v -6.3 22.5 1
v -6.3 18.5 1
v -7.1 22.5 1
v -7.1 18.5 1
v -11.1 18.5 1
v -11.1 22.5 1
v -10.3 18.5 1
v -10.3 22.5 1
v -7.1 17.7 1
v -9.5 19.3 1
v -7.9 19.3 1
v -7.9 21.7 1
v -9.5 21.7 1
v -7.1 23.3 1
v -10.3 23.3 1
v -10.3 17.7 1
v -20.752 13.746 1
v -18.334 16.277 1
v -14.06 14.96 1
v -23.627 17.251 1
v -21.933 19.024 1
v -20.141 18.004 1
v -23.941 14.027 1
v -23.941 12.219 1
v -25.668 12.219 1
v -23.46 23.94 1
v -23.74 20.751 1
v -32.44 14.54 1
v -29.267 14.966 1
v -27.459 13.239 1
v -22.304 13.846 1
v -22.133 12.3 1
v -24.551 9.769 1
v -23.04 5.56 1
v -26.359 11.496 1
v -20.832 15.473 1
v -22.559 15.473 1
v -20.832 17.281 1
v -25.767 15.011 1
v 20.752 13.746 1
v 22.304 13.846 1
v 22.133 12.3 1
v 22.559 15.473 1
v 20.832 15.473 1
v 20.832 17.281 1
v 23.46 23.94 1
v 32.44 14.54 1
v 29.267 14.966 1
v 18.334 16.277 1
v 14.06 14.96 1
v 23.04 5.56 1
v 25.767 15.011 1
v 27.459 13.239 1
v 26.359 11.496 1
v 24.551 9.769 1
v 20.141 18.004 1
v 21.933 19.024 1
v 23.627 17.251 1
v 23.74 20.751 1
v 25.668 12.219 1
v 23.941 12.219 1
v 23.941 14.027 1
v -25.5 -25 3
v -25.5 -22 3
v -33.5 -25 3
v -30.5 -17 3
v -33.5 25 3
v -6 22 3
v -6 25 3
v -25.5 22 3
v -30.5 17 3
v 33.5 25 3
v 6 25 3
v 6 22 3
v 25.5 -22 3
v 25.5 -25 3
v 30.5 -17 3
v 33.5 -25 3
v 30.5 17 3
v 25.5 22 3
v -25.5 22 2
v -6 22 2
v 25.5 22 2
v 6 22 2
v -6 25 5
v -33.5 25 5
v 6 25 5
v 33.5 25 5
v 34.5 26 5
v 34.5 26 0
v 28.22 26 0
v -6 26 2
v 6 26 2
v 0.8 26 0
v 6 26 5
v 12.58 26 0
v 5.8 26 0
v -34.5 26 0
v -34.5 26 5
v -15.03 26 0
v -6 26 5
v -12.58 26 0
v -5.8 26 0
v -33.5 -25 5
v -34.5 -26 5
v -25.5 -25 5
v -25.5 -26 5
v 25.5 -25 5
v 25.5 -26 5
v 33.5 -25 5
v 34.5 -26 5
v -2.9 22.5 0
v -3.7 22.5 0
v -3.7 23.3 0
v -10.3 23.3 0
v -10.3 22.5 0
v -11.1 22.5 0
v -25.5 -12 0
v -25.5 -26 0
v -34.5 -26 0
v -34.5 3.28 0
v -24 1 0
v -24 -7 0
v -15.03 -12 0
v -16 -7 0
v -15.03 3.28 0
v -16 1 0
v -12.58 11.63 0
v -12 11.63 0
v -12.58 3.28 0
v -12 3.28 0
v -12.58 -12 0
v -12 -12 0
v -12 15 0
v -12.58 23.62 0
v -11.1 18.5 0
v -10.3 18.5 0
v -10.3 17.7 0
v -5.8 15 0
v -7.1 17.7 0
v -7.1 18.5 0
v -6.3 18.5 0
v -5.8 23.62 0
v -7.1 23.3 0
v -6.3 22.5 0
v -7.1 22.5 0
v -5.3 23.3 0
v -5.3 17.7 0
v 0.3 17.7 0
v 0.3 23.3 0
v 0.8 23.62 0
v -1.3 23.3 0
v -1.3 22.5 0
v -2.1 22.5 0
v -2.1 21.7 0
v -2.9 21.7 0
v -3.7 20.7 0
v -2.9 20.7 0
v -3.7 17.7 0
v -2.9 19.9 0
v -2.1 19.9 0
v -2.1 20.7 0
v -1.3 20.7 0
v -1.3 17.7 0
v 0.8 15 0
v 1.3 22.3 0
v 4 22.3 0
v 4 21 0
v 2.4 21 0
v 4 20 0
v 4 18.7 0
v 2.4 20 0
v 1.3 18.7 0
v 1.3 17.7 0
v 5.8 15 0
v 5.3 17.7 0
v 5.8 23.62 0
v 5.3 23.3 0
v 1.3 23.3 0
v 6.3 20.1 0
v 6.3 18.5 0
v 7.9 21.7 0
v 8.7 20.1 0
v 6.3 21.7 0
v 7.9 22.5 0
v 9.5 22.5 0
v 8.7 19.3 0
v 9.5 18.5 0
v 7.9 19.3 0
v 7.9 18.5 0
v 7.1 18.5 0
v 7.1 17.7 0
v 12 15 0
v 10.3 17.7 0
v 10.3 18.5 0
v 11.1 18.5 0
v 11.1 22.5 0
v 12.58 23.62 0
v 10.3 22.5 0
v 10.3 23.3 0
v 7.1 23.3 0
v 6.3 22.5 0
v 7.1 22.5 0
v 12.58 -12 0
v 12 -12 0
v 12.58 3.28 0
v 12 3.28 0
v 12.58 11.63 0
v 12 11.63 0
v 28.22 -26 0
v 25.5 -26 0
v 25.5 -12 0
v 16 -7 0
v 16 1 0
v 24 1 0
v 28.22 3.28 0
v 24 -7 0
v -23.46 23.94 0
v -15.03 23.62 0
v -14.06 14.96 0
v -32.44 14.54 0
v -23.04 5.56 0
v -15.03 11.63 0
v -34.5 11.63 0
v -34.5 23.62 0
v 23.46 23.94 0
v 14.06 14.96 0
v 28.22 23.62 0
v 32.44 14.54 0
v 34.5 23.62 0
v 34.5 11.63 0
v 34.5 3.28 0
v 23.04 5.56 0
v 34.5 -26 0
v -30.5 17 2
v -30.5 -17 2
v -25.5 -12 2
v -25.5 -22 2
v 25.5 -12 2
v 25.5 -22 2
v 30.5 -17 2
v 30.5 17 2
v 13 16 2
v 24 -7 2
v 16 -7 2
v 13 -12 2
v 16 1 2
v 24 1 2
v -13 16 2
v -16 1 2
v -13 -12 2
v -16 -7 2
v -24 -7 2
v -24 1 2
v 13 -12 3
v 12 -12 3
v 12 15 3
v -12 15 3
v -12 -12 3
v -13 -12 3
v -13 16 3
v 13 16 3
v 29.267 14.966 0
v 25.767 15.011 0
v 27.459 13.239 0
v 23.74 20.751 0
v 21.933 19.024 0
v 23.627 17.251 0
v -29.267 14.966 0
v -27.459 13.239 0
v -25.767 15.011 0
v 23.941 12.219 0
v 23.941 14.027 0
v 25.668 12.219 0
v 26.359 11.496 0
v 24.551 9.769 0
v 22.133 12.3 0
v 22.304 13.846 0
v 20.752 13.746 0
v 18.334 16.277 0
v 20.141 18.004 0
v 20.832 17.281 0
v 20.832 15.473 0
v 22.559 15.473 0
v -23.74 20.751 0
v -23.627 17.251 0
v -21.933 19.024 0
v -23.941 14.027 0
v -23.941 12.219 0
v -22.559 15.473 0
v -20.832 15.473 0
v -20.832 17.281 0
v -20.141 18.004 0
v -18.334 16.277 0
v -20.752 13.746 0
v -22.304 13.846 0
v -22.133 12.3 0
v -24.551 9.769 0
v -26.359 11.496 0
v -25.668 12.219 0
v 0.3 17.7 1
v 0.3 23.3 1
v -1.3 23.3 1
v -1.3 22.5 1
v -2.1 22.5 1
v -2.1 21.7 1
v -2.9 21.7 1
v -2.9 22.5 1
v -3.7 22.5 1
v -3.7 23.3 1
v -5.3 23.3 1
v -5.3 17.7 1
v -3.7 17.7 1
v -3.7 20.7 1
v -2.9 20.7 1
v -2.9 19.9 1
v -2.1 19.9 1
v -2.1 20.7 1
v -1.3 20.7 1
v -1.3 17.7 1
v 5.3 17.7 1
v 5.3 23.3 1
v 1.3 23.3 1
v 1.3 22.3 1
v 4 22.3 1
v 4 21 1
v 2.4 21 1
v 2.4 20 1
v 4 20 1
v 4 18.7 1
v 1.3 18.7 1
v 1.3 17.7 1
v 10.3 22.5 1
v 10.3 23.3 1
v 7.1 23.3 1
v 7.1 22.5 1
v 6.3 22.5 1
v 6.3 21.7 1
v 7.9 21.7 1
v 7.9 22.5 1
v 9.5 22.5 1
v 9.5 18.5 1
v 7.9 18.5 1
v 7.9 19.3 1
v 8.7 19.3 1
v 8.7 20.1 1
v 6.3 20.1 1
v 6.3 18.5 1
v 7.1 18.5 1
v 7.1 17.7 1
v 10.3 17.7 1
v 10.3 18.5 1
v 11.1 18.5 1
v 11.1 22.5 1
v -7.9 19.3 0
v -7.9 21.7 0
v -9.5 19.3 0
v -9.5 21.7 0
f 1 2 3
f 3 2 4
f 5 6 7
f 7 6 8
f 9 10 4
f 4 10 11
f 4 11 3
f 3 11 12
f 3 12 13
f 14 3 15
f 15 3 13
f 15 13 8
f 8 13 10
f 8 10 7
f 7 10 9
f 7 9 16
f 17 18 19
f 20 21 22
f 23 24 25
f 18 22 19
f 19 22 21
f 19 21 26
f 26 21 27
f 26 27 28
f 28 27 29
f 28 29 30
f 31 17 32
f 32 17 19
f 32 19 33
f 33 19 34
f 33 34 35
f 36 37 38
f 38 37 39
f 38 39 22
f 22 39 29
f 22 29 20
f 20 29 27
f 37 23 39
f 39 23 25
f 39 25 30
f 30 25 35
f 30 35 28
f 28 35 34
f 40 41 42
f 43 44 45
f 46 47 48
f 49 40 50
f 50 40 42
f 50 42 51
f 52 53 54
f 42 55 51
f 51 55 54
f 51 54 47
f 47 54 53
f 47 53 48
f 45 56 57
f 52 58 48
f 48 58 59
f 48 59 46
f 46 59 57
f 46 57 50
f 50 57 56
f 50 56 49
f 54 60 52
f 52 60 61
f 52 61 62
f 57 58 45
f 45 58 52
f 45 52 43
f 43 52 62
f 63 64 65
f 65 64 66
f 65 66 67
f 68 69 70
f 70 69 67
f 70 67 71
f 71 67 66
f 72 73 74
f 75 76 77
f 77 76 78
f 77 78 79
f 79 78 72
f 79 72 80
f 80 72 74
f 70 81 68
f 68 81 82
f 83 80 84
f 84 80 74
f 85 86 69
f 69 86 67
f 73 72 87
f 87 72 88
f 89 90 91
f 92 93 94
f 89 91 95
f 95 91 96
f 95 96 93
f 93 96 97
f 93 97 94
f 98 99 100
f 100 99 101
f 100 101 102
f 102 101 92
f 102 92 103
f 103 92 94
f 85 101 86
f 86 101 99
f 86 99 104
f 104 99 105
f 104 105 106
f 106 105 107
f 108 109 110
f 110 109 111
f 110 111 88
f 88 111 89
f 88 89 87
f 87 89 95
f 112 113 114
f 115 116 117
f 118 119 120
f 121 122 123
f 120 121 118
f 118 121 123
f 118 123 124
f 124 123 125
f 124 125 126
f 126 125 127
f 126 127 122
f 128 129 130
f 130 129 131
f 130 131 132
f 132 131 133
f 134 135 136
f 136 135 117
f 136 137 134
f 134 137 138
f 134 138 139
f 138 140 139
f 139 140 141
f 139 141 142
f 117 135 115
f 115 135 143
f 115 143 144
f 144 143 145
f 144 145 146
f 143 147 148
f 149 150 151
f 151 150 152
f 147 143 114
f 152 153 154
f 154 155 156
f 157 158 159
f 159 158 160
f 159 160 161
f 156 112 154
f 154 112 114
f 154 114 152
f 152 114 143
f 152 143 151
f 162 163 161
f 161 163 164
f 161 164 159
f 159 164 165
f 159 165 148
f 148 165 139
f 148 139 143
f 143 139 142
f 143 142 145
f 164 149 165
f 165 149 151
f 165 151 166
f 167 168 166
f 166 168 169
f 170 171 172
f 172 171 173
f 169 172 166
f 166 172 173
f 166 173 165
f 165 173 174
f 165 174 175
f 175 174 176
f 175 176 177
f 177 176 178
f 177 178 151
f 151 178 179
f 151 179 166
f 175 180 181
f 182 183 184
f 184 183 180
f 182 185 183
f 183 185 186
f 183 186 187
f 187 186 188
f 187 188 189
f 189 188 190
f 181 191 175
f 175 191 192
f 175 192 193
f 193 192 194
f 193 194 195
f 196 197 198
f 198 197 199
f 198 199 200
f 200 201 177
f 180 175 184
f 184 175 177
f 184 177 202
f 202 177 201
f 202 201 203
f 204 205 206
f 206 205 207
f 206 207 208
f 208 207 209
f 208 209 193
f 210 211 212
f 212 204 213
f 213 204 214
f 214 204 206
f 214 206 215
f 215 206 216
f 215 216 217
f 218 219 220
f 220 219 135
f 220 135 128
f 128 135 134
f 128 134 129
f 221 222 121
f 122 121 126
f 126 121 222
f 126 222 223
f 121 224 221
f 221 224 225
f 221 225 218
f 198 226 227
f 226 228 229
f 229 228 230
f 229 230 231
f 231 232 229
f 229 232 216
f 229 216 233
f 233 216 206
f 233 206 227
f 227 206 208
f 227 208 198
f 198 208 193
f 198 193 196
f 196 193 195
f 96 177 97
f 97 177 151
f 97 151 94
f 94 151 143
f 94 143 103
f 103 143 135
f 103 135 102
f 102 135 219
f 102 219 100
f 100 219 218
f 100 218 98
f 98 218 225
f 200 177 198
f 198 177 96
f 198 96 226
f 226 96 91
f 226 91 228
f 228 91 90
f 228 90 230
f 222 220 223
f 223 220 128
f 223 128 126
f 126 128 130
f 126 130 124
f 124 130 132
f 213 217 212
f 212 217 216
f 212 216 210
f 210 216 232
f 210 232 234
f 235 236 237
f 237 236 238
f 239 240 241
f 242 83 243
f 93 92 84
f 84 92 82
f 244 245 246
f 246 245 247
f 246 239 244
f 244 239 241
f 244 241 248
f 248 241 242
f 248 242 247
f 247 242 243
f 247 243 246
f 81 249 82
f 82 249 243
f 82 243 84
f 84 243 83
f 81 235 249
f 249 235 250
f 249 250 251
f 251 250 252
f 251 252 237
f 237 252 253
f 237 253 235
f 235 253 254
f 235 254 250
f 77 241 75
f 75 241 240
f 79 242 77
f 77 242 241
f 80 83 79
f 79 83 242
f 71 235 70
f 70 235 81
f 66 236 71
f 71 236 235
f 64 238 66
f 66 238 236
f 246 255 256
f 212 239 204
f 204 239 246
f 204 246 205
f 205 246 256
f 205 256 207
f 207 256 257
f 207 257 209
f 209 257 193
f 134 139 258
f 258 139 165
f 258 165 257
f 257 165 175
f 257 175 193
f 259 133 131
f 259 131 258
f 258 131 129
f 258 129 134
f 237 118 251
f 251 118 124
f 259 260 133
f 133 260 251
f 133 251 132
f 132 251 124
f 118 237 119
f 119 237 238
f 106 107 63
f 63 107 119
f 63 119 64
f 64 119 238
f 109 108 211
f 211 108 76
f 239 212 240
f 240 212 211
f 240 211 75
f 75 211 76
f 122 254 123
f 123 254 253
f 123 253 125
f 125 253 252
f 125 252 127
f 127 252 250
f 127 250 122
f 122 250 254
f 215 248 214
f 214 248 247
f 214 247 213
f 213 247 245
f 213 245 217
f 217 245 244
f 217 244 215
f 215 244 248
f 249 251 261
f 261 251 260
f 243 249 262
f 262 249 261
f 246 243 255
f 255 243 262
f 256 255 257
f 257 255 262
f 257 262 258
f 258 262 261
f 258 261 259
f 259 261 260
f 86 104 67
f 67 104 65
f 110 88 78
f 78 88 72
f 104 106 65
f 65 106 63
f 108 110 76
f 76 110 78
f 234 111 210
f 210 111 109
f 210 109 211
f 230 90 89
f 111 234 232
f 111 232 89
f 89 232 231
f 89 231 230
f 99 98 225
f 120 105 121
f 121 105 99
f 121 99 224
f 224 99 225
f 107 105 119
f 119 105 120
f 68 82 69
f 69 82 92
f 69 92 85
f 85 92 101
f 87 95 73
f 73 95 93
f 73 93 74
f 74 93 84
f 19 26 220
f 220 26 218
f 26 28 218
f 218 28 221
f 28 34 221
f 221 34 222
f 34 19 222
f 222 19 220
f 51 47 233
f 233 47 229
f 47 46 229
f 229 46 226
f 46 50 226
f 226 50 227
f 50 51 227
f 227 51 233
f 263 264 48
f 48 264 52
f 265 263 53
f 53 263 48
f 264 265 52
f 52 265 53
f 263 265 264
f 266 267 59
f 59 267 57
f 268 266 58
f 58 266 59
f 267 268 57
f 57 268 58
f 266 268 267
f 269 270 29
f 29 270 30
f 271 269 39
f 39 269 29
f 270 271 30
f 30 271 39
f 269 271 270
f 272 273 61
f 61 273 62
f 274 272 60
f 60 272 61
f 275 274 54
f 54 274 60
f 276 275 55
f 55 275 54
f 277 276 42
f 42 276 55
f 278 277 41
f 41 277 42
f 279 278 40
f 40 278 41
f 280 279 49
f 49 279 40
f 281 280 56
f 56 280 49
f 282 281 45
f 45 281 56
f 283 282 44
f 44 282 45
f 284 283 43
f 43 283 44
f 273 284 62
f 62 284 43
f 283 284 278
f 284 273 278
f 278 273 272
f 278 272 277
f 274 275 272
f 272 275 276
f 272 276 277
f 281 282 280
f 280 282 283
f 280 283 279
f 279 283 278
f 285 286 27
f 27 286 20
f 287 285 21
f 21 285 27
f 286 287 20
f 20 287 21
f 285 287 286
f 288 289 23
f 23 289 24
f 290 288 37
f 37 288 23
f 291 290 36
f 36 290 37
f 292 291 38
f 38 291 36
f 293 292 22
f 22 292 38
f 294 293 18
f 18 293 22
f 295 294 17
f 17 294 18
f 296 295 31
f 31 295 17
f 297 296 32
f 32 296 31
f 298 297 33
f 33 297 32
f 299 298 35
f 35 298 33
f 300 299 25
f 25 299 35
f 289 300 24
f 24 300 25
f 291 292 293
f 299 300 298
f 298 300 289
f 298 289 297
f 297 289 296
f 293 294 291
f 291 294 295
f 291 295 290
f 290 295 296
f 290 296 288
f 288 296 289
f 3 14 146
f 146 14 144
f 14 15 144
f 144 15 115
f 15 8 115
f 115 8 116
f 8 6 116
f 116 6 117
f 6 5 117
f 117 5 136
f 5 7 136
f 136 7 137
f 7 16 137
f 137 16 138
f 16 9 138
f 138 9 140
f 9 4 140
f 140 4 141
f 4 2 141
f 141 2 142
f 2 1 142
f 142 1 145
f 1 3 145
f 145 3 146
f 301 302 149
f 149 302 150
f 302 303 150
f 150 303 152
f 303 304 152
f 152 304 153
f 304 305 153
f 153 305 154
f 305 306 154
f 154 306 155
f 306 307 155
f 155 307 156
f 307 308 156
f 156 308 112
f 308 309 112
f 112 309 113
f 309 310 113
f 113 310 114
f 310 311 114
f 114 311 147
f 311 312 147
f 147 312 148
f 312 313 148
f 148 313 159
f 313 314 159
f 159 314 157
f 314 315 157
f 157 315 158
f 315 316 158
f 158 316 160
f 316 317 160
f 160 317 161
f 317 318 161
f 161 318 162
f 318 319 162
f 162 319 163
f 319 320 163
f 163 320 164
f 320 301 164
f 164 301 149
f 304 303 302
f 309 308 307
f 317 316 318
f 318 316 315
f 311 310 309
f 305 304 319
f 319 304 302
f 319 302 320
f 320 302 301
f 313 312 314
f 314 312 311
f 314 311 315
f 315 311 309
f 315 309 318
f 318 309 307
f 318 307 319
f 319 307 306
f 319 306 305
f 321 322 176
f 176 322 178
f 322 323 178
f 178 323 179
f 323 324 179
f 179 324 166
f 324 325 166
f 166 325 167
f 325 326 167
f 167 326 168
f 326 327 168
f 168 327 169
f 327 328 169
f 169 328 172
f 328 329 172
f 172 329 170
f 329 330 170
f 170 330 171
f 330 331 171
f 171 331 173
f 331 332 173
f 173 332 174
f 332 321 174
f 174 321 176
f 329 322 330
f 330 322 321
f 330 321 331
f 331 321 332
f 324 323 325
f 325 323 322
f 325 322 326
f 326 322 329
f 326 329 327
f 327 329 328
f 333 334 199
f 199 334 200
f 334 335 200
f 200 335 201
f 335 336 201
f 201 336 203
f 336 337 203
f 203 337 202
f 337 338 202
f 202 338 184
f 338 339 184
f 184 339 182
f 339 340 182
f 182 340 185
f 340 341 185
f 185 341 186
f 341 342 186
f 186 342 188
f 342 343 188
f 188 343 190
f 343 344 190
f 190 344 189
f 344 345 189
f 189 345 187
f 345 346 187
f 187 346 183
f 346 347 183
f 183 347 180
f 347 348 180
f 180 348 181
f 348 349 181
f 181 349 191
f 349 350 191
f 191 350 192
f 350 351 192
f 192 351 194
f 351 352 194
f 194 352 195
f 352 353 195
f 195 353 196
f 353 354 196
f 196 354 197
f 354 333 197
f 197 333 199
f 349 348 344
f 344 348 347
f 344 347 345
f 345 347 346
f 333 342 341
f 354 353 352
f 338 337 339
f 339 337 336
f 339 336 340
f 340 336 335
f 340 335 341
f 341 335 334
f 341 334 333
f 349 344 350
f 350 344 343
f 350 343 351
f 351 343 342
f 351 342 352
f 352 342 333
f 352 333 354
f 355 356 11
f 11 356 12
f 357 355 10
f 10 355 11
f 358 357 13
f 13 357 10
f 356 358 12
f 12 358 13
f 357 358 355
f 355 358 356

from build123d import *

# Parameters (mm, degrees)
SKICA1_W                    = 67
SKICA1_H                    = 50
P_IDAT_VYSUNUT_M1_DEPTH     = 3
ODEBRAT_VYSUNUT_M1_DEPTH    = 1
SKICA3_W                    = 8
SKICA3_H                    = 8
ODEBRAT_VYSUNUT_M2_DEPTH    = 4
VYSUNOUT_TENKOST_NN_1_DEPTH = 1
VYSUNOUT_TENKOST_NN_2_DEPTH = 5
SKICA6_W                    = 12
SKICA6_H                    = 4
ODEBRAT_VYSUNUT_M3_DEPTH    = 4
ODEBRAT_VYSUNUT_M5_DEPTH    = 1
P_IDAT_START                = -1
P_IDAT_VYSUNUT_M3_DEPTH     = 1
ODEBRAT_VYSUNUT_M6_DEPTH    = 1
SKICA10_W                   = 1.6
SKICA10_H                   = 2.4
P_IDAT_VYSUNUT_M4_DEPTH     = 1


with BuildPart() as part:
    # Skica1 → Přidat vysunutím1 (new body)
    with BuildSketch(Plane.XY):
        Rectangle(SKICA1_W, SKICA1_H)
    extrude(amount=P_IDAT_VYSUNUT_M1_DEPTH)

    # Skica2 → Odebrat vysunutím1 (cut)
    with BuildSketch(Plane.XY.offset(3)):
        Polygon((-25.5, -22), (-30.5, -17), (-30.5, 17), (-25.5, 22), (25.5, 22), (30.5, 17), (30.5, -17), (25.5, -22), align=None)
    extrude(amount=-ODEBRAT_VYSUNUT_M1_DEPTH, mode=Mode.SUBTRACT)

    # Skica3 → Odebrat vysunutím2 (cut, through all)
    with BuildSketch(Plane(origin=(0, 0, 0), x_dir=(-1, 0, 0), z_dir=(0, 0, -1))):
        with Locations((20, -3)):
            Rectangle(SKICA3_W, SKICA3_H)
        with Locations((-20, -3)):
            Rectangle(SKICA3_W, SKICA3_H)
        Polygon((25.5, -25), (-25.5, -25), (-25.5, -12), (-12, -12), (-12, 15), (12, 15), (12, -12), (25.5, -12), align=None)
    extrude(amount=-ODEBRAT_VYSUNUT_M2_DEPTH, mode=Mode.SUBTRACT)

    # Skica4 → Vysunout tenkostěnný1 (add)
    with BuildSketch(Plane.XY.offset(2)):
        Polygon((-12, -12), (-12, 15), (12, 15), (12, -12), (13, -12), (13, 16), (-13, 16), (-13, -12), align=None)
    extrude(amount=VYSUNOUT_TENKOST_NN_1_DEPTH)

    # Skica5 → Vysunout tenkostěnný2 (add)
    with BuildSketch(Plane(origin=(0, 0, 0), x_dir=(-1, 0, 0), z_dir=(0, 0, -1))):
        Polygon((-25.5, -25), (-33.5, -25), (-33.5, 25), (33.5, 25), (33.5, -25), (25.5, -25), (25.5, -26), (34.5, -26), (34.5, 26), (-34.5, 26), (-34.5, -26), (-25.5, -26), align=None)
    extrude(amount=-VYSUNOUT_TENKOST_NN_2_DEPTH)

    # Skica6 → Odebrat vysunutím3 (cut, through all)
    with BuildSketch(Plane.XY.offset(2)):
        with Locations((0, 24)):
            Rectangle(SKICA6_W, SKICA6_H)
    extrude(amount=ODEBRAT_VYSUNUT_M3_DEPTH, mode=Mode.SUBTRACT)

    # Skica7 → Odebrat vysunutím5 (cut)
    with BuildSketch(Plane(origin=(0, 0, 0), x_dir=(-1, 0, 0), z_dir=(0, 0, -1))):
        Polygon((-32.44, 14.540476732), (-23.459523268, 23.94), (-14.06, 14.959523268), (-23.040476732, 5.56), align=None)
        Polygon((14.06, 14.959523268), (23.040476732, 5.56), (32.44, 14.540476732), (23.459523268, 23.94), align=None)
    extrude(amount=-ODEBRAT_VYSUNUT_M5_DEPTH, mode=Mode.SUBTRACT)

    # Skica8 → Přidat vysunutím3 (add)
    with BuildSketch(Plane(origin=(0, 0, 0), x_dir=(-1, 0, 0), z_dir=(0, 0, -1)).offset(P_IDAT_START)):
        Polygon((-29.266904741, 14.966465555), (-27.459304113, 13.239450799), (-25.766904741, 15.010820822), align=None)
        Polygon((-23.626799477, 17.250787567), (-21.932856893, 19.023772811), (-23.740457522, 20.750787567), align=None)
        Polygon((-24.551025932, 9.769304113), (-26.358626561, 11.496318869), (-25.667820659, 12.21935912), (-23.940805902, 12.21935912), (-23.940805902, 14.026959749), (-22.559194098, 15.473040251), (-20.832179341, 15.473040251), (-20.832179341, 17.28064088), (-20.141373439, 18.003681131), (-18.333772811, 16.276666375), (-20.751593469, 13.746025495), (-22.304085189, 13.84625566), (-22.133205274, 12.299944993), align=None)
        Polygon((27.459304113, 13.239450799), (25.766904741, 15.010820822), (29.266904741, 14.966465555), align=None)
        Polygon((23.626799477, 17.250787567), (21.932856893, 19.023772811), (23.740457522, 20.750787567), align=None)
        Polygon((23.940805902, 14.026959749), (22.559194098, 15.473040251), (20.832179341, 15.473040251), (20.832179341, 17.28064088), (20.141373439, 18.003681131), (18.333772811, 16.276666375), (20.751593469, 13.746025495), (22.304085189, 13.84625566), (22.133205274, 12.299944993), (24.551025932, 9.769304113), (26.358626561, 11.496318869), (25.667820659, 12.21935912), (23.940805902, 12.21935912), align=None)
    extrude(amount=P_IDAT_VYSUNUT_M3_DEPTH)

    # Skica9 → Odebrat vysunutím6 (cut)
    with BuildSketch(Plane(origin=(0, 0, 0), x_dir=(-1, 0, 0), z_dir=(0, 0, -1))):
        Polygon((-10.3, 23.3), (-7.1, 23.3), (-7.1, 22.5), (-6.3, 22.5), (-6.3, 21.7), (-7.9, 21.7), (-7.9, 22.5), (-9.5, 22.5), (-9.5, 18.5), (-7.9, 18.5), (-7.9, 19.3), (-8.7, 19.3), (-8.7, 20.1), (-6.3, 20.1), (-6.3, 18.5), (-7.1, 18.5), (-7.1, 17.7), (-10.3, 17.7), (-10.3, 18.5), (-11.1, 18.5), (-11.1, 22.5), (-10.3, 22.5), align=None)
        Polygon((-5.3, 23.3), (-1.3, 23.3), (-1.3, 22.3), (-4, 22.3), (-4, 21), (-2.4, 21), (-2.4, 20), (-4, 20), (-4, 18.7), (-1.3, 18.7), (-1.3, 17.7), (-5.3, 17.7), align=None)
        Polygon((-0.3, 23.3), (1.3, 23.3), (1.3, 22.5), (2.1, 22.5), (2.1, 21.7), (2.9, 21.7), (2.9, 22.5), (3.7, 22.5), (3.7, 23.3), (5.3, 23.3), (5.3, 17.7), (3.7, 17.7), (3.7, 20.7), (2.9, 20.7), (2.9, 19.9), (2.1, 19.9), (2.1, 20.7), (1.3, 20.7), (1.3, 17.7), (-0.3, 17.7), align=None)
        Polygon((7.1, 23.3), (10.3, 23.3), (10.3, 22.5), (11.1, 22.5), (11.1, 18.5), (10.3, 18.5), (10.3, 17.7), (7.1, 17.7), (7.1, 18.5), (6.3, 18.5), (6.3, 22.5), (7.1, 22.5), align=None)
    extrude(amount=-ODEBRAT_VYSUNUT_M6_DEPTH, mode=Mode.SUBTRACT)

    # Skica10 → Přidat vysunutím4 (add)
    with BuildSketch(Plane(origin=(0, 0, 1), x_dir=(-1, 0, 0), z_dir=(0, 0, -1))):
        with Locations((8.7, 20.5)):
            Rectangle(SKICA10_W, SKICA10_H)
    extrude(amount=P_IDAT_VYSUNUT_M4_DEPTH)


solid = part.part
